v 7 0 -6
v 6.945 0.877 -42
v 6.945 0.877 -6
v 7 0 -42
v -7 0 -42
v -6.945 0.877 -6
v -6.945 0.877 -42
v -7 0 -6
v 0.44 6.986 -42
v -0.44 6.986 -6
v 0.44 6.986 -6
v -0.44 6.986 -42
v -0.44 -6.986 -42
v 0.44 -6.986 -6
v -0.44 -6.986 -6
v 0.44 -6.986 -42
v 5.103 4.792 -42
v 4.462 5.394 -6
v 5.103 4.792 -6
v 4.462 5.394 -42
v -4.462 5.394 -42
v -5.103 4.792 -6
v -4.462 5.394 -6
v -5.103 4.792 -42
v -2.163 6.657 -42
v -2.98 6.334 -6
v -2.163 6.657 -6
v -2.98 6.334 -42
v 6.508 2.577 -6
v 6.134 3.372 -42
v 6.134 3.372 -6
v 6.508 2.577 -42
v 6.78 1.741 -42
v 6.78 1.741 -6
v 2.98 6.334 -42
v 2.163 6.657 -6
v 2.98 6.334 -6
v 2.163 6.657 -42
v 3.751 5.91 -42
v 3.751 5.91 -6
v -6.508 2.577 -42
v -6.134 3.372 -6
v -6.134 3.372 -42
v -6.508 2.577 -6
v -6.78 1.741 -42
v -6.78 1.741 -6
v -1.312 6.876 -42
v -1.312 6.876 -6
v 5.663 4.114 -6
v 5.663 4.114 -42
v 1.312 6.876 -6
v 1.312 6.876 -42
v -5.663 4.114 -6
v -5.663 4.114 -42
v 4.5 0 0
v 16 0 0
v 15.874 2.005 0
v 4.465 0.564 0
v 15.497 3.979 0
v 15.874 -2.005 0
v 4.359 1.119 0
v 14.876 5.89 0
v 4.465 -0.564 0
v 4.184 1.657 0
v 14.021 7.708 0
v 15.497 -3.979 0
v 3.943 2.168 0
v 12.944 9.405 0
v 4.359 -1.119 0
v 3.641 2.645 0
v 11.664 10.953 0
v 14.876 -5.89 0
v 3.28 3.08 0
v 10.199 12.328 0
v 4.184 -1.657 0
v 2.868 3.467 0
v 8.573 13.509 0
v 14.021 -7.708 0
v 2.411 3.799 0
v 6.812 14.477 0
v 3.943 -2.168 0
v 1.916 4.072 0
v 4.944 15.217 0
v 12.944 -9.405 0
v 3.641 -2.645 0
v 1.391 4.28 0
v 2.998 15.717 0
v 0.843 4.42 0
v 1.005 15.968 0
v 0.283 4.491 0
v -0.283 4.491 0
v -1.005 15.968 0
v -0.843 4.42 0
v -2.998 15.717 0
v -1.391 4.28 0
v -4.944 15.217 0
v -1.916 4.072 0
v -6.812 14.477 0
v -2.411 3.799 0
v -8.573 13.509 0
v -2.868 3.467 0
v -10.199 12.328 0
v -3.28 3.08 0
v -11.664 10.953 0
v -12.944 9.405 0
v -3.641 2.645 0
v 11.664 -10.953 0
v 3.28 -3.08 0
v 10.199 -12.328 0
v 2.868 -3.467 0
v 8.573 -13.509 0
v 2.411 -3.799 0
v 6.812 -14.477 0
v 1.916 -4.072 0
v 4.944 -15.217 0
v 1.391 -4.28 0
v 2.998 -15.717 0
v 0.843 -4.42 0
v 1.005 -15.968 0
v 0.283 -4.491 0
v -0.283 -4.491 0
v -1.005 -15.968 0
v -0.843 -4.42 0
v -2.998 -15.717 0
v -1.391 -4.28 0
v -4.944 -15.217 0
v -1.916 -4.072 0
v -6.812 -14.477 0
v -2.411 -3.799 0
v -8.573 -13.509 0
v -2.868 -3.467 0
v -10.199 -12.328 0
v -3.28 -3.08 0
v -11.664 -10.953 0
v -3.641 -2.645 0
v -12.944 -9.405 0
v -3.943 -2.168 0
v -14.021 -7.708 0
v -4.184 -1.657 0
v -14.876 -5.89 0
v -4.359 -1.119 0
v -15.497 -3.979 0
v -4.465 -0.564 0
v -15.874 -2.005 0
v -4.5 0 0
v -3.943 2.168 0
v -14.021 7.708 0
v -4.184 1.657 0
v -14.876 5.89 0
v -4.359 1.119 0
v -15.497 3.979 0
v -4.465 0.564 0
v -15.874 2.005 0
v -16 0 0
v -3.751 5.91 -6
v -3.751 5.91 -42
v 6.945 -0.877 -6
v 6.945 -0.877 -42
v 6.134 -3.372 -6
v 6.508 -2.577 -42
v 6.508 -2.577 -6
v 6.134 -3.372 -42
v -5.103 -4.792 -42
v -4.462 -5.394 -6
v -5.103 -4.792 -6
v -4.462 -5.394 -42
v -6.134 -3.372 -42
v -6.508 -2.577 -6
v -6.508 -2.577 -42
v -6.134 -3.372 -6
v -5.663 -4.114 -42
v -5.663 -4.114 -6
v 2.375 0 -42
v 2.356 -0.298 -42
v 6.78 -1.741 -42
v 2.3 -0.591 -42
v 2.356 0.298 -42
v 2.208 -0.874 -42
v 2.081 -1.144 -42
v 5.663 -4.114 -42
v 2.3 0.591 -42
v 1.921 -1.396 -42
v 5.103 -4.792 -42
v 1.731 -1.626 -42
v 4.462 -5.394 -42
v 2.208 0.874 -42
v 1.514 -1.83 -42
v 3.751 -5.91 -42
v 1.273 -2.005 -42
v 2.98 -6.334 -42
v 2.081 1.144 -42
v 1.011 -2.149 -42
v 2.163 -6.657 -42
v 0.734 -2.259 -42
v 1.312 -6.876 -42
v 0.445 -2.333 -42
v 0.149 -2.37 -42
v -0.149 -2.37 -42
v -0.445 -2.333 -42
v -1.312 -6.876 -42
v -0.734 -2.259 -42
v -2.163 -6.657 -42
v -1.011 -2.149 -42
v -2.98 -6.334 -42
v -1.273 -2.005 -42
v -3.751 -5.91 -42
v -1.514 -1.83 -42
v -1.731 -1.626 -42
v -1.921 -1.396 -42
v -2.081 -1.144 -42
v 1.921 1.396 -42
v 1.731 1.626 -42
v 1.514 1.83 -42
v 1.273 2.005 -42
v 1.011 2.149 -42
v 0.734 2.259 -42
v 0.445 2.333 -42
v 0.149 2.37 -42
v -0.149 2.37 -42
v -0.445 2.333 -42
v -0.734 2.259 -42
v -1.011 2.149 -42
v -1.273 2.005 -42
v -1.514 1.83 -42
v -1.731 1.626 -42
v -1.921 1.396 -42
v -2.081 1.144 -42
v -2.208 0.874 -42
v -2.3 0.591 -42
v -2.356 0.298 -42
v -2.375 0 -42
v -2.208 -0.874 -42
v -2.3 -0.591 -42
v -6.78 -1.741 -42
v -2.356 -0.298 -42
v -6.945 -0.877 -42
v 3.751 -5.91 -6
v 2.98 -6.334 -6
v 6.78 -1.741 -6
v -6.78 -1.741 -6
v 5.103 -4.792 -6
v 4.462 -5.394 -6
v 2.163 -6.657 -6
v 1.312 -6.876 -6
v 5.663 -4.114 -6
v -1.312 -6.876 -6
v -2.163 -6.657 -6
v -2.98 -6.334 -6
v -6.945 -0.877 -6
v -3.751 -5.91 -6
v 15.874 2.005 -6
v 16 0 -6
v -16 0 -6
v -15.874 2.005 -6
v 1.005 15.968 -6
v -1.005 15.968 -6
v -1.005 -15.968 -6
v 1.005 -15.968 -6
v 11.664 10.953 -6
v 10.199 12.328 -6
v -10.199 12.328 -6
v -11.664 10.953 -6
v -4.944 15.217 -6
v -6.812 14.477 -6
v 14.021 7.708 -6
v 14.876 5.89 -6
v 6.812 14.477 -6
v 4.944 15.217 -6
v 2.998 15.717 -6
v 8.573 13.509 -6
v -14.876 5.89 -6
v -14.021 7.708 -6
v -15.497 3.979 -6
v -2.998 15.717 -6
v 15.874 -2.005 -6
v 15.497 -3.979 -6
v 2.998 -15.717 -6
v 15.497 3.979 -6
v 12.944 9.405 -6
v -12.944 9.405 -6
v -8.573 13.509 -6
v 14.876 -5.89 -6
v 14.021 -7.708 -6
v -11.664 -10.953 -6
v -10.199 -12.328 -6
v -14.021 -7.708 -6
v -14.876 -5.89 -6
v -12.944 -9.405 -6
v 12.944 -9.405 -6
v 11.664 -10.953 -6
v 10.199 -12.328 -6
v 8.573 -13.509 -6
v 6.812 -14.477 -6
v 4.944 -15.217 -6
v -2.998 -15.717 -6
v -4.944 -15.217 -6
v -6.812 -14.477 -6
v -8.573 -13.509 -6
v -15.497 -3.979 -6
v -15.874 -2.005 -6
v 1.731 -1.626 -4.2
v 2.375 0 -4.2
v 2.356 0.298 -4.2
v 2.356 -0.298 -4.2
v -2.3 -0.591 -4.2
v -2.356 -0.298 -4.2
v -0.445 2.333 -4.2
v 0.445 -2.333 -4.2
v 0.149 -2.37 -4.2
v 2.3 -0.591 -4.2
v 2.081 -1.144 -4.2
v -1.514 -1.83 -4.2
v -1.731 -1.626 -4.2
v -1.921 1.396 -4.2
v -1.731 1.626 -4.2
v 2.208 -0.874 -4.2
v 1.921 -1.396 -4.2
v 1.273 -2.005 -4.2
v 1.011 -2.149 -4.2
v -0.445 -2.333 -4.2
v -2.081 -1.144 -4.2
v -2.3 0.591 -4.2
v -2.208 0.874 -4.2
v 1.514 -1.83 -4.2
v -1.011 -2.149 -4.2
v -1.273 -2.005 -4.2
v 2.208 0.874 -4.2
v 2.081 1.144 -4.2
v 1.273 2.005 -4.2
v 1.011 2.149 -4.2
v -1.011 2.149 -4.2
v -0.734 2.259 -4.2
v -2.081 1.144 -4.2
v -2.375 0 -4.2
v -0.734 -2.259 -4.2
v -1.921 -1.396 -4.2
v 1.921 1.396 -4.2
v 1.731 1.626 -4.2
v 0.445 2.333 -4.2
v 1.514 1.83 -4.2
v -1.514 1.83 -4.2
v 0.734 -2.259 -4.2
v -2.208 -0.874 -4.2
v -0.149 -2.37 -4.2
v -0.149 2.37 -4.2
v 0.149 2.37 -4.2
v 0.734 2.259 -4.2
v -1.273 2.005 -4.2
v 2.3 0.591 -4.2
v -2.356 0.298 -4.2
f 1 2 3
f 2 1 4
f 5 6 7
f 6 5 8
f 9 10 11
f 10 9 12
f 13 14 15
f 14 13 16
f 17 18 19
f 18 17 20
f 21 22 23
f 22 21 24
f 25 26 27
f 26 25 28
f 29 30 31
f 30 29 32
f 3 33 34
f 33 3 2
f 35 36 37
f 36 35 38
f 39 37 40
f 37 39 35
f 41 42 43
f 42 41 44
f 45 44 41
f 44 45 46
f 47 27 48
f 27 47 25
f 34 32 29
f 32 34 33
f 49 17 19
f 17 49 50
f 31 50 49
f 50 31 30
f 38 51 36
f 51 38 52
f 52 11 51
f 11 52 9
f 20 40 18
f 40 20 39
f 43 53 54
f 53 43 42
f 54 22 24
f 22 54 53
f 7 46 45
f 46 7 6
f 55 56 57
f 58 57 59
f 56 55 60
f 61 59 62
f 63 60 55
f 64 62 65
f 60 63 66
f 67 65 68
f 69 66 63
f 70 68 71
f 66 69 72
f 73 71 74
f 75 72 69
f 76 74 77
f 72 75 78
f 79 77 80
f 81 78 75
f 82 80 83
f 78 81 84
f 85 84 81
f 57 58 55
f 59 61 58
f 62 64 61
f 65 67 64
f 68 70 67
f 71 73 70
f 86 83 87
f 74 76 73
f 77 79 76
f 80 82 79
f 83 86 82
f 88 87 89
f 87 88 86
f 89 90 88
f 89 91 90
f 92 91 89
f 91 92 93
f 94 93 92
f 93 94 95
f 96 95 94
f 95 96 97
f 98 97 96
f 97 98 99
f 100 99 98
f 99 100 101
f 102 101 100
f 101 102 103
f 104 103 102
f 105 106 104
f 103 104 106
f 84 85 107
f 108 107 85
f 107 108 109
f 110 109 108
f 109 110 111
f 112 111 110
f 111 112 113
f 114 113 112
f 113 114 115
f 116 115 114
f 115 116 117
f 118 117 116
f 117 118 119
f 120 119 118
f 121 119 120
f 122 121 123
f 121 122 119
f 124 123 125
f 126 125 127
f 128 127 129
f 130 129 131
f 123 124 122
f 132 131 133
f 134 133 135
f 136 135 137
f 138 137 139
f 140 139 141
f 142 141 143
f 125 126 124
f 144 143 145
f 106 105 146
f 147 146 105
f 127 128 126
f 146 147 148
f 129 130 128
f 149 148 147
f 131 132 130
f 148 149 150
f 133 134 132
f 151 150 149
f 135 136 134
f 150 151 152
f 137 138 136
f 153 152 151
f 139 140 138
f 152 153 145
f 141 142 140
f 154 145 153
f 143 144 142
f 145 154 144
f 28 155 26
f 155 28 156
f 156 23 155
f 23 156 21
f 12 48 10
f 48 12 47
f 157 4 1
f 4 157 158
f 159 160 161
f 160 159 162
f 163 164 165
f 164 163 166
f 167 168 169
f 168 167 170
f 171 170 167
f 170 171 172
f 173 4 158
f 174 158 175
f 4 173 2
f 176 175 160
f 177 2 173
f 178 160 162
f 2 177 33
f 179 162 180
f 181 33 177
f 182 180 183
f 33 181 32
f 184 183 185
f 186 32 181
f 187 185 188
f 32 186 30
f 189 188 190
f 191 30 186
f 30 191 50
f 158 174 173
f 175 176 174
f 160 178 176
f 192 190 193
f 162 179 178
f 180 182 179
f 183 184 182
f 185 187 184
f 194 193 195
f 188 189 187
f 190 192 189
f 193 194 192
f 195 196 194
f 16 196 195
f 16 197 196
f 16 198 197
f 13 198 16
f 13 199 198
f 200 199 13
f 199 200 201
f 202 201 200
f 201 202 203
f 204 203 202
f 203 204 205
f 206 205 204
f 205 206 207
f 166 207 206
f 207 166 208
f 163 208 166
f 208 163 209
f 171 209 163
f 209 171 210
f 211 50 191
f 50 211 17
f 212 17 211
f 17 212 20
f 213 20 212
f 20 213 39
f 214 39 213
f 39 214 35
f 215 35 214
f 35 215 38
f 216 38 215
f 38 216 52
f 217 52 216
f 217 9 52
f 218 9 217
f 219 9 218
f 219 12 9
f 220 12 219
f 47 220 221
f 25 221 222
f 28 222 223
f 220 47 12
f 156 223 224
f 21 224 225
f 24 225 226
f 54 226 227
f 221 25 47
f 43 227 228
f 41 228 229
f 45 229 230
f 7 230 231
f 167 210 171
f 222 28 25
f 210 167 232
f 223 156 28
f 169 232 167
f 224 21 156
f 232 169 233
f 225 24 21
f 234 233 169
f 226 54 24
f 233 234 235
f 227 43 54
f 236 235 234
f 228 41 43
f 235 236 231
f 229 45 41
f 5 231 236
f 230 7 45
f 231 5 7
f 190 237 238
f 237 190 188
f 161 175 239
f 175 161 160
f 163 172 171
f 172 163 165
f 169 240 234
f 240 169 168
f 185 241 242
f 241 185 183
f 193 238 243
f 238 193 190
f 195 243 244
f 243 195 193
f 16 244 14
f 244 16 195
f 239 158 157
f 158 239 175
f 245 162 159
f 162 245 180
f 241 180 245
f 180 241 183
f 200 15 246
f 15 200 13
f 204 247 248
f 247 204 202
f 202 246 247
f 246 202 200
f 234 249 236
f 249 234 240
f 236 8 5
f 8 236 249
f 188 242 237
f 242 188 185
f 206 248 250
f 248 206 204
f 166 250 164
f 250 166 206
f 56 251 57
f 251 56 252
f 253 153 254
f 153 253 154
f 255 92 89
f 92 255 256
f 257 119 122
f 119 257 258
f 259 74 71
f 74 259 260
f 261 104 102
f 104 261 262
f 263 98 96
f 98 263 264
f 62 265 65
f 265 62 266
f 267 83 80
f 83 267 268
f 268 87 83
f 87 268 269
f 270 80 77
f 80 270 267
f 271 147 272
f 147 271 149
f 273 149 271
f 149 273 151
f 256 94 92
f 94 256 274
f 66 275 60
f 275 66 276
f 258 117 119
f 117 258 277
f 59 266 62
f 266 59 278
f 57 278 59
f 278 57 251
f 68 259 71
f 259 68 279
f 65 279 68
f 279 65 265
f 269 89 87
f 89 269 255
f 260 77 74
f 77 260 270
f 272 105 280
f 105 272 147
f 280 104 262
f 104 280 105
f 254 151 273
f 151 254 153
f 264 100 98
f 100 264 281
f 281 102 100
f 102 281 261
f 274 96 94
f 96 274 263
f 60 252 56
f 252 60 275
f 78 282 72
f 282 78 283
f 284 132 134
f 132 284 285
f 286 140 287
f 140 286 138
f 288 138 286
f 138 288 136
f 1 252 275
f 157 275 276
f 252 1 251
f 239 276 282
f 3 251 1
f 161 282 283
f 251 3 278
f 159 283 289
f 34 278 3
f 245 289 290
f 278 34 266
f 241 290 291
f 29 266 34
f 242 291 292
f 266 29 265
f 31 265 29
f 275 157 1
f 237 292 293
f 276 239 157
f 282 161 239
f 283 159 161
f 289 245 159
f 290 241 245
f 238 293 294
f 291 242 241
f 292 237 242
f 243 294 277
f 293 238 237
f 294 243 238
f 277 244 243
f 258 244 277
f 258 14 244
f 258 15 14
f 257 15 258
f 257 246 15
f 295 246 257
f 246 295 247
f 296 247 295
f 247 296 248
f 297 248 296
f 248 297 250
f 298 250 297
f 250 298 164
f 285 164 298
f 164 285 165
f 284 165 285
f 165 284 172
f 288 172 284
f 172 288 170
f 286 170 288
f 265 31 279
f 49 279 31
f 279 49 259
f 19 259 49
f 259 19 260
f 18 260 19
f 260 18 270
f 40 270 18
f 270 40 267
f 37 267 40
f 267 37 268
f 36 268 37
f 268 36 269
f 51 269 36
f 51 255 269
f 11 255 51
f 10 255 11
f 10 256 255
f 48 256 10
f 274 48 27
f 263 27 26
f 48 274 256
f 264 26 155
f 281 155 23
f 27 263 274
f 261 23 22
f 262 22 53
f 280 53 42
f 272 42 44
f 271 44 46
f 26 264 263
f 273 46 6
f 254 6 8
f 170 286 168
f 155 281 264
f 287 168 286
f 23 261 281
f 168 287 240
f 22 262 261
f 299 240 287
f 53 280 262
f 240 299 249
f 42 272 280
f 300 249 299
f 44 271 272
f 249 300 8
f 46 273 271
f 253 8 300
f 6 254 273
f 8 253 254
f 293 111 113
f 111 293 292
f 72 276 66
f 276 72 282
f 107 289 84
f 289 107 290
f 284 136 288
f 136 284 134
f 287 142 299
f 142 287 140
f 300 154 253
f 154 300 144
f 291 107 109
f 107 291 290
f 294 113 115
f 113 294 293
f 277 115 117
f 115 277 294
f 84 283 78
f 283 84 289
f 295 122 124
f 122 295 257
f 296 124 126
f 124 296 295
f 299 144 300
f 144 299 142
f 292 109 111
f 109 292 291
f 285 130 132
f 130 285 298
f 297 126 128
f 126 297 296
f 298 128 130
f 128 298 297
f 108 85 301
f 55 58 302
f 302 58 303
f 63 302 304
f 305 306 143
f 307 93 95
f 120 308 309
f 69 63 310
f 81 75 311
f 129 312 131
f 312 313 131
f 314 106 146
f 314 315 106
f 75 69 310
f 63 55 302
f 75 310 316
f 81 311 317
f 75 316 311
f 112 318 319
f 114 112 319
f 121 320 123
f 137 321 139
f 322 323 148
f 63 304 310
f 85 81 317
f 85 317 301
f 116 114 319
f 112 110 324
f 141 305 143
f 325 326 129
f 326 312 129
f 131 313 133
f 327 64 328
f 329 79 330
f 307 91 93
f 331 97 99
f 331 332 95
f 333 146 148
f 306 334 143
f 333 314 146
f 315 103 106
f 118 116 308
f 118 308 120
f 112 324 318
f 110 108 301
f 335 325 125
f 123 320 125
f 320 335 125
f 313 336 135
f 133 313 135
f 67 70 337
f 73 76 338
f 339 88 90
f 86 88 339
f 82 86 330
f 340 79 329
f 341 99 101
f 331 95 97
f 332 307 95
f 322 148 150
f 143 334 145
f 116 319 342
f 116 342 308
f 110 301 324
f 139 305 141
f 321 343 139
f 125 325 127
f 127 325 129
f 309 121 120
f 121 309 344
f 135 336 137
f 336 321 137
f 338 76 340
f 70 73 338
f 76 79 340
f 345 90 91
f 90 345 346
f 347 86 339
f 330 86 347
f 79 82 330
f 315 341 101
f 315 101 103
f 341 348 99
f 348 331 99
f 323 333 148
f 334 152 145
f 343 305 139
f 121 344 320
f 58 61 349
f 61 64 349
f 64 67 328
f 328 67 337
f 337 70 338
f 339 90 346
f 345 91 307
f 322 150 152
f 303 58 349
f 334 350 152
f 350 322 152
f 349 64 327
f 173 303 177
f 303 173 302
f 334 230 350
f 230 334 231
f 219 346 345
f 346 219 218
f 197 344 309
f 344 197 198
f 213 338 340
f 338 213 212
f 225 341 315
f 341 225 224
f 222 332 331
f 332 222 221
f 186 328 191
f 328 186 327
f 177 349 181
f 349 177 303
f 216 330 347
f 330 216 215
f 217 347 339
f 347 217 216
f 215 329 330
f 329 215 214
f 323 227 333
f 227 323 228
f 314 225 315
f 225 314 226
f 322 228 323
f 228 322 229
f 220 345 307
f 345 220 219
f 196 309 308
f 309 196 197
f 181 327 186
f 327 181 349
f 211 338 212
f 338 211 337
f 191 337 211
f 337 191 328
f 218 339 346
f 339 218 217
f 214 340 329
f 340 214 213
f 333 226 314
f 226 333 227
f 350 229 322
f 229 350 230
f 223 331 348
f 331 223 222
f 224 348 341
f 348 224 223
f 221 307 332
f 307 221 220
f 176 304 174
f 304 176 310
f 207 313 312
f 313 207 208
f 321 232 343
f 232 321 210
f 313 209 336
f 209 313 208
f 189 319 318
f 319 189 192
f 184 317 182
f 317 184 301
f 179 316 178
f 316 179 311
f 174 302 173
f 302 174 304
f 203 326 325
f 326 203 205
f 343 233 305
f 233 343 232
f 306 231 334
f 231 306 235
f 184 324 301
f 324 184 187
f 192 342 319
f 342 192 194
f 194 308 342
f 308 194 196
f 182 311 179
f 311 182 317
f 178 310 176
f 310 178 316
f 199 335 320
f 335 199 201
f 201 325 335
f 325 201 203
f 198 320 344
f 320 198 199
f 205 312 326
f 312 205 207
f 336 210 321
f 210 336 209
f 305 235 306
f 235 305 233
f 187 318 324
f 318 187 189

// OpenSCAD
$fn = 50;


difference() {
	union() {
		translate(v = [0, 0, -42.0000000000]) {
			cylinder(h = 42, r = 7.0000000000);
		}
		translate(v = [0, 0, -6.0000000000]) {
			cylinder(h = 6, r = 16.0000000000);
		}
	}
	union() {
		translate(v = [0, 0, 0]) {
			rotate(a = [0, 0, 0]) {
				difference() {
					union() {
						#translate(v = [0, 0, -42.0000000000]) {
							cylinder(h = 42, r = 2.2500000000);
						}
						#translate(v = [0, 0, -4.2000000000]) {
							cylinder(h = 4.2000000000, r = 7.0000000000, r1 = 2.3750000000, r2 = 4.5000000000);
						}
						#translate(v = [0, 0, -42.0000000000]) {
							cylinder(h = 42, r = 2.3750000000);
						}
						#translate(v = [0, 0, -42.0000000000]) {
							cylinder(h = 42, r = 2.2500000000);
						}
					}
					union();
				}
			}
		}
	}
}
